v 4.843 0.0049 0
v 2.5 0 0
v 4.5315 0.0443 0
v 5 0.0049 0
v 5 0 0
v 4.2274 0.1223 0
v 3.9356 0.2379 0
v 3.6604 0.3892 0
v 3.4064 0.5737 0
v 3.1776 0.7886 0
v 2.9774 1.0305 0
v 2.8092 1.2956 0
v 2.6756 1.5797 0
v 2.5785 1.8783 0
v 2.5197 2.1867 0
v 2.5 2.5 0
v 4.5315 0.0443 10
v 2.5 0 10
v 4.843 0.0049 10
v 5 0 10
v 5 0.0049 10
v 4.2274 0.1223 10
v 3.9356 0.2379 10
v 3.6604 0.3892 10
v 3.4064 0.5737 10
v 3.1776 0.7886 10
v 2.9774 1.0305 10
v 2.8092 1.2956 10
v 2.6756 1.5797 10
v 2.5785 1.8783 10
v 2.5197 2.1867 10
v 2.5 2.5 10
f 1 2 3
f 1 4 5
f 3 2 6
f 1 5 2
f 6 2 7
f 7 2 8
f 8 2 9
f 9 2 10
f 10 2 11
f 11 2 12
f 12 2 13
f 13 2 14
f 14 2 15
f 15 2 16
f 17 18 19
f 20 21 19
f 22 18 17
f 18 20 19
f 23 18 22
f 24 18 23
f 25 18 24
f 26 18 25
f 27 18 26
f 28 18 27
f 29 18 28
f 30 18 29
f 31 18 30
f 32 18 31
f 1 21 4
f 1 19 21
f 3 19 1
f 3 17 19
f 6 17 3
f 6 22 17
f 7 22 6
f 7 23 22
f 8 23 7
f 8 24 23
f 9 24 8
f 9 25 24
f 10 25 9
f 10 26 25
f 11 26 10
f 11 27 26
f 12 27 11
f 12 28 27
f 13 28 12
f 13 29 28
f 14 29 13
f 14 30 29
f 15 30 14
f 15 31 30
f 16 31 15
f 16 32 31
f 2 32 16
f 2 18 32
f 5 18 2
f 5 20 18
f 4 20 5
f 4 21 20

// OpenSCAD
$fn=50;

//rotate_extrude(convexity = 10)
linear_extrude(10)
translate([2.5,0,0]) {
 intersection(){
   square(5);
   difference(){
      square(5,center=true);
      translate([2.5,2.5]) circle(2.5);
   }
  }
}
